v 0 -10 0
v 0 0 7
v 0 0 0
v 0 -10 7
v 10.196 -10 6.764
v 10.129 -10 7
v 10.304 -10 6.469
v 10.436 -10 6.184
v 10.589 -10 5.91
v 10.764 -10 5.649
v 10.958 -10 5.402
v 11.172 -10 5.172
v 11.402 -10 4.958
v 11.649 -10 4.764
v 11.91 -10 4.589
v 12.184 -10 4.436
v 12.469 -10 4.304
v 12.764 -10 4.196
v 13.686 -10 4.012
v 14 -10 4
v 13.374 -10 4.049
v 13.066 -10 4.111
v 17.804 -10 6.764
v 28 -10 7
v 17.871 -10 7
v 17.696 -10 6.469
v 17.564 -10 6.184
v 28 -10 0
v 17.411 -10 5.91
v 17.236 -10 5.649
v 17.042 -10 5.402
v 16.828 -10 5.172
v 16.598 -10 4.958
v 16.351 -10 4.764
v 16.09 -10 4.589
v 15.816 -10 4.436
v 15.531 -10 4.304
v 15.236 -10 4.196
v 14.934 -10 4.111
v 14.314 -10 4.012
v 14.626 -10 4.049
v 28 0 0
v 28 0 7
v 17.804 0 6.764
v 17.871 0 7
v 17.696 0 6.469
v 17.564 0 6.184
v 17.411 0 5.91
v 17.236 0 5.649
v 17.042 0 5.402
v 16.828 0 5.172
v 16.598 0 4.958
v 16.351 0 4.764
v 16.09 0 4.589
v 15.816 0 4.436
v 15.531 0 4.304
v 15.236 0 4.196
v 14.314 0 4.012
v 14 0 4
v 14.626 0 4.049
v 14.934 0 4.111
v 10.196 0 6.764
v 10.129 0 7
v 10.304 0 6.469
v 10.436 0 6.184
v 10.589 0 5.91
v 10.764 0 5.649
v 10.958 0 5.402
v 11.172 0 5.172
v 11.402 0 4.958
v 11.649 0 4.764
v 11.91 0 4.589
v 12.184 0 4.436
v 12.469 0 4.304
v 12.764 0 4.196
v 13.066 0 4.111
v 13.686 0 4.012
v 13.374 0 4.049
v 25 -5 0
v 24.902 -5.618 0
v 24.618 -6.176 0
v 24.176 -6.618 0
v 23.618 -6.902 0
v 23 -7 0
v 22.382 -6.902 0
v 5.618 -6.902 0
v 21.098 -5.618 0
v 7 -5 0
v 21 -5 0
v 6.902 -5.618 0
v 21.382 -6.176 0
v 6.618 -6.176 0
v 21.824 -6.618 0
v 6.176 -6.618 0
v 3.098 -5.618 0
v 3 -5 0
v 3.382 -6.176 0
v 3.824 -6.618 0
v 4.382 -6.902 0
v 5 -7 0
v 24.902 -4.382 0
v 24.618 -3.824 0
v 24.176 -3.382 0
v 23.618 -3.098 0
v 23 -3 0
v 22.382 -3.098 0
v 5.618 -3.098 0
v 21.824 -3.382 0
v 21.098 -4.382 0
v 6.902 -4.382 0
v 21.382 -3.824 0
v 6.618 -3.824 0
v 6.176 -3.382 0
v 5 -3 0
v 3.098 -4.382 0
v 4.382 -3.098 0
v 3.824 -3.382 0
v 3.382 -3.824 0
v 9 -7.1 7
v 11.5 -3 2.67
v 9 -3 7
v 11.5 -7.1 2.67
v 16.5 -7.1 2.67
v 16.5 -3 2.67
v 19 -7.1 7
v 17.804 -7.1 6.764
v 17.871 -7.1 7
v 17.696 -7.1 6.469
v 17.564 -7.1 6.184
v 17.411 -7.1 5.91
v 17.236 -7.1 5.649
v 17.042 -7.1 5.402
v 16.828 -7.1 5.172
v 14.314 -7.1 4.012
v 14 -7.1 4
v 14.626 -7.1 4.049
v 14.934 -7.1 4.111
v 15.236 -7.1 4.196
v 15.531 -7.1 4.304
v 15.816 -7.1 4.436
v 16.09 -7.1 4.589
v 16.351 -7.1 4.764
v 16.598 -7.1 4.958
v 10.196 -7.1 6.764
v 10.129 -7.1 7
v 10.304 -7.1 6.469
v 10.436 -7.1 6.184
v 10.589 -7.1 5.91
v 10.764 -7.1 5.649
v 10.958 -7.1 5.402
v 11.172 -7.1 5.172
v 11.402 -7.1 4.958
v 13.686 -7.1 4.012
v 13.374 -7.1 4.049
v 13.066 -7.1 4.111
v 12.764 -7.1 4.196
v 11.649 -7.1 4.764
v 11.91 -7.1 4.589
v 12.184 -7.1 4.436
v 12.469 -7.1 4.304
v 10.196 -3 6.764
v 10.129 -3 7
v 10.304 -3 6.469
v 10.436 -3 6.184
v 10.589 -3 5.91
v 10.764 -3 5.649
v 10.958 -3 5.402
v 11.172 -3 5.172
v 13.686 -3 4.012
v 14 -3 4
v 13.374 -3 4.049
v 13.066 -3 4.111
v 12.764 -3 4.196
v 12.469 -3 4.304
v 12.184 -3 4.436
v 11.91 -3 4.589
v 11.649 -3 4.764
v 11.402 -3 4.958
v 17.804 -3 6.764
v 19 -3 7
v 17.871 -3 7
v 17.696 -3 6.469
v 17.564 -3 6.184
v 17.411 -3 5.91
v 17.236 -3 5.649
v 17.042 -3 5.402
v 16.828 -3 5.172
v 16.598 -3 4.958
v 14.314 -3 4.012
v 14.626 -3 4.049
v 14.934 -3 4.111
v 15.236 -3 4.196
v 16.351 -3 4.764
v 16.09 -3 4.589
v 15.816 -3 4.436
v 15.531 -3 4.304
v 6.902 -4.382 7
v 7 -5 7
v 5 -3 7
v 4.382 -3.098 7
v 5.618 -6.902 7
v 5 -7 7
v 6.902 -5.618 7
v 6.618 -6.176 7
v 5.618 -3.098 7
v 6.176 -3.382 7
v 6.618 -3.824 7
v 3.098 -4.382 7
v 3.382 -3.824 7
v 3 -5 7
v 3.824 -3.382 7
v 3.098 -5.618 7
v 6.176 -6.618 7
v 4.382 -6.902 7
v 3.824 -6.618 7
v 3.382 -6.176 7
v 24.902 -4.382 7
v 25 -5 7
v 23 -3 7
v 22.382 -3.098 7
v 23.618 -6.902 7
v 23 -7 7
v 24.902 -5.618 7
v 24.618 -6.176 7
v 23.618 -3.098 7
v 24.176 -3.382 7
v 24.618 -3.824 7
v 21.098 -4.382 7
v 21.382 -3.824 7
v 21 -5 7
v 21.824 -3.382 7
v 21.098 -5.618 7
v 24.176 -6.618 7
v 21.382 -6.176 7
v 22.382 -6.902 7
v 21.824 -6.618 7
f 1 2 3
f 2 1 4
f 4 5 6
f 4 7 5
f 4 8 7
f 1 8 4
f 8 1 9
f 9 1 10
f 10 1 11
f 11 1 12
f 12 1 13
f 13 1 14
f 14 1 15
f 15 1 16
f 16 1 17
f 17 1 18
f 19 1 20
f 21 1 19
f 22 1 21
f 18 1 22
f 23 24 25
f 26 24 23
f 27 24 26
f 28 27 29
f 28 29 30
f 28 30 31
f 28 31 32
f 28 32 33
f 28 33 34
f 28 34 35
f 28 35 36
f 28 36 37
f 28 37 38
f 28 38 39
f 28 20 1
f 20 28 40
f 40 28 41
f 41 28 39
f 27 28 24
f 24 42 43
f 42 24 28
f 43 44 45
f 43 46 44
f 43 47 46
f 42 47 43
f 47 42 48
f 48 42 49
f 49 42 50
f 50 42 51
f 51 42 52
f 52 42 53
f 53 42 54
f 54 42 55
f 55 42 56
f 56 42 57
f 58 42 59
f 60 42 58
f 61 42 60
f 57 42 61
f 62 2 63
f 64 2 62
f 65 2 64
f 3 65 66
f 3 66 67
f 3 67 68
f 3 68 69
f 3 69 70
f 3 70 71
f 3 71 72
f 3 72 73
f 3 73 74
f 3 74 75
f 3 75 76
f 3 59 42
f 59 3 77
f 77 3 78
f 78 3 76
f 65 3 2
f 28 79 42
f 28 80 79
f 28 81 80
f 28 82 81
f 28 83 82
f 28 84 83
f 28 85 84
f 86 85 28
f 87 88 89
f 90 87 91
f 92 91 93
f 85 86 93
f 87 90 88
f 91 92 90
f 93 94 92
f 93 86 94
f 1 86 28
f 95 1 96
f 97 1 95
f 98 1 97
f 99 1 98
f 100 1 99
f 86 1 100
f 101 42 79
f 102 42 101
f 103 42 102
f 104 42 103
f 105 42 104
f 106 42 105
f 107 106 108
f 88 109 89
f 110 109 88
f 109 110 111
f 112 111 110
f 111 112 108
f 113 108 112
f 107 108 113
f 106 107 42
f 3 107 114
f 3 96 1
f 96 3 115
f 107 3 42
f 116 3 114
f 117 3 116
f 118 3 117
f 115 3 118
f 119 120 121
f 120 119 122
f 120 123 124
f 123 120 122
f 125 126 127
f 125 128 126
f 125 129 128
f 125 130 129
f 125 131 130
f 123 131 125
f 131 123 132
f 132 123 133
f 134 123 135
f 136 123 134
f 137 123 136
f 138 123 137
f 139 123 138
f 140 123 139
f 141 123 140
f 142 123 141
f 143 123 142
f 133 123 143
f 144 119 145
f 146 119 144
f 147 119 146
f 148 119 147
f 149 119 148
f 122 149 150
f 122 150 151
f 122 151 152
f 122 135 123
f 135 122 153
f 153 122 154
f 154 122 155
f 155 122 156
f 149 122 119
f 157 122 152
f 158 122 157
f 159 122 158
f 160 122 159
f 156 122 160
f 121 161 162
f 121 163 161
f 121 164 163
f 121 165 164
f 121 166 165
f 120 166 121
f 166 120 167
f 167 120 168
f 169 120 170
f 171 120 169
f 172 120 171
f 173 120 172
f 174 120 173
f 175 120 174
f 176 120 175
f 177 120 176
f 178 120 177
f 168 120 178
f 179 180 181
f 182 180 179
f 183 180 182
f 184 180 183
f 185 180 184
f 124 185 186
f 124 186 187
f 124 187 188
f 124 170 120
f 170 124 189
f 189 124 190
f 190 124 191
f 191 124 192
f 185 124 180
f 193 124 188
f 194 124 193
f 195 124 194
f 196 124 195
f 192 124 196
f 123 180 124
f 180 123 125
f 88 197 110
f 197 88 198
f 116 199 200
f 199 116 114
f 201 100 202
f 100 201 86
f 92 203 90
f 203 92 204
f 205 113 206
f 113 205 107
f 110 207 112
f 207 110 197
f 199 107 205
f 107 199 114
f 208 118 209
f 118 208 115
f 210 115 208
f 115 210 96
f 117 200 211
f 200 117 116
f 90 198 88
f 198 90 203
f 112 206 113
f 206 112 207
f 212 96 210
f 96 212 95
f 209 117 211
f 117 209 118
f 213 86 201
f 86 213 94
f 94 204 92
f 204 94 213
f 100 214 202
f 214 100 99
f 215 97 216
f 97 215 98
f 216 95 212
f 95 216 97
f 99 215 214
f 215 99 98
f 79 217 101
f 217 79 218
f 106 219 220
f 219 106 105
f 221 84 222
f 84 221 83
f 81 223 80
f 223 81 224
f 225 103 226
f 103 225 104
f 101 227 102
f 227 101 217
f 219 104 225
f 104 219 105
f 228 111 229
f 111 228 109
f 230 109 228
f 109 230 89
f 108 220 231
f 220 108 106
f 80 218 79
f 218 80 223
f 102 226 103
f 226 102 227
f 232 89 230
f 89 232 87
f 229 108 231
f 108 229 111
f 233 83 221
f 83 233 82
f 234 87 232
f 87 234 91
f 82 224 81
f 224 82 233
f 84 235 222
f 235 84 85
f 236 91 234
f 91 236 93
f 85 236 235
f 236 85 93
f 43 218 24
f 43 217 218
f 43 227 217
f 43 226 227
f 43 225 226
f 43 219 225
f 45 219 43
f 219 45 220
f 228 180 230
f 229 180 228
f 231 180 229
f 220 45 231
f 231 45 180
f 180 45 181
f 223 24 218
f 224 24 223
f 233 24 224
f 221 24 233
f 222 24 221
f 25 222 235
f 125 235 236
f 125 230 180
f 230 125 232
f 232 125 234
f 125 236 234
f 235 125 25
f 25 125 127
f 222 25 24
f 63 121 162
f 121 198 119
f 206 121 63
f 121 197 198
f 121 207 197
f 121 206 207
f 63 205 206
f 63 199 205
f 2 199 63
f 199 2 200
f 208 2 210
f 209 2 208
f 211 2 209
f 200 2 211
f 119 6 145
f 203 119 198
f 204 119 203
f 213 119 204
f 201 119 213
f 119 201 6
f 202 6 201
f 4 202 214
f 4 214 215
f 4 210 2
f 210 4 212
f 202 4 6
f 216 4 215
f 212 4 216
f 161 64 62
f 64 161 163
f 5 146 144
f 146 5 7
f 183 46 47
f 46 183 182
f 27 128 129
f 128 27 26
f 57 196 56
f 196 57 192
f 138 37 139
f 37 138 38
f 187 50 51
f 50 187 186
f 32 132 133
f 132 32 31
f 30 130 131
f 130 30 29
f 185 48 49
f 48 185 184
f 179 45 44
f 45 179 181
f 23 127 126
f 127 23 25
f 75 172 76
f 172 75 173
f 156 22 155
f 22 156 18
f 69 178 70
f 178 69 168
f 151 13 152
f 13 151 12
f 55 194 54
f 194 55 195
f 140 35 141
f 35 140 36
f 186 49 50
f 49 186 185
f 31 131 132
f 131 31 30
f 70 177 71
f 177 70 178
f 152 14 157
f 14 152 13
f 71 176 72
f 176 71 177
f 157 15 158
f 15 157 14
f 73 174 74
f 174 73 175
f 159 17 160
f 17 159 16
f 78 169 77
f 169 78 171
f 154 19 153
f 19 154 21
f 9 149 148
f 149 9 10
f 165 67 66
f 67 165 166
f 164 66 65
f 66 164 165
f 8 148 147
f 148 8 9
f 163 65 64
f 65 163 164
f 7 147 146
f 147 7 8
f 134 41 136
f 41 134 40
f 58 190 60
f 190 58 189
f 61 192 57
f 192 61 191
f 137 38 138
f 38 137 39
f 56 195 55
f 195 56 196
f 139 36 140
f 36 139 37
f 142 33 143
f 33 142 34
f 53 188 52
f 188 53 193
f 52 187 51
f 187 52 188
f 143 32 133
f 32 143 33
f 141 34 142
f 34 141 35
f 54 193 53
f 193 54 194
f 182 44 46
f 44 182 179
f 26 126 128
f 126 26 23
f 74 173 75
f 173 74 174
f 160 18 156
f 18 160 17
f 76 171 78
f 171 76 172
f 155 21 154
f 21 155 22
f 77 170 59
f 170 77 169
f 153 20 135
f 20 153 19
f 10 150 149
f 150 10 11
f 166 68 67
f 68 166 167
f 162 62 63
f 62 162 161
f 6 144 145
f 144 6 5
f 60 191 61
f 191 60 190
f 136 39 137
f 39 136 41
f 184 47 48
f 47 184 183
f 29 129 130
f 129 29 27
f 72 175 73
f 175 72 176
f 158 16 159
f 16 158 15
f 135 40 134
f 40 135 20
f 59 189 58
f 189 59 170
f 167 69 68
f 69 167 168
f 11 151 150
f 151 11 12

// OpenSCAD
rotate([90,0,0])
difference()
{
    cube([28,14,10]);

    translate([14,7,5])
    translate([0,0,-2])
    cylinder(h=4.1, d=10, $fa=60);      

    translate([5,0,5])
    rotate([-90,0,0])
    cylinder(d=4,h=14,$fn=20);

    translate([28-5,0,5])
    rotate([-90,0,0])
    cylinder(d=4,h=14,$fn=20);

    translate([0,7,0])
    cube([28,14,10]);

    translate([14,8,0])
    cylinder(r=4, h=10, $fn=80);
}






//translate([66,0,4])
//rotate([0,180,0])
//difference()
//{
//    translate([58,0,0])
//    translate([-8,0,0])
//        cube([16,45,4]);
//
//    translate([58,37,0])
//    {
//        cylinder(r=3, h=12, $fn=80);
//        cylinder(h=2, d=10, $fa=60);      
//    }
//}
//
//
